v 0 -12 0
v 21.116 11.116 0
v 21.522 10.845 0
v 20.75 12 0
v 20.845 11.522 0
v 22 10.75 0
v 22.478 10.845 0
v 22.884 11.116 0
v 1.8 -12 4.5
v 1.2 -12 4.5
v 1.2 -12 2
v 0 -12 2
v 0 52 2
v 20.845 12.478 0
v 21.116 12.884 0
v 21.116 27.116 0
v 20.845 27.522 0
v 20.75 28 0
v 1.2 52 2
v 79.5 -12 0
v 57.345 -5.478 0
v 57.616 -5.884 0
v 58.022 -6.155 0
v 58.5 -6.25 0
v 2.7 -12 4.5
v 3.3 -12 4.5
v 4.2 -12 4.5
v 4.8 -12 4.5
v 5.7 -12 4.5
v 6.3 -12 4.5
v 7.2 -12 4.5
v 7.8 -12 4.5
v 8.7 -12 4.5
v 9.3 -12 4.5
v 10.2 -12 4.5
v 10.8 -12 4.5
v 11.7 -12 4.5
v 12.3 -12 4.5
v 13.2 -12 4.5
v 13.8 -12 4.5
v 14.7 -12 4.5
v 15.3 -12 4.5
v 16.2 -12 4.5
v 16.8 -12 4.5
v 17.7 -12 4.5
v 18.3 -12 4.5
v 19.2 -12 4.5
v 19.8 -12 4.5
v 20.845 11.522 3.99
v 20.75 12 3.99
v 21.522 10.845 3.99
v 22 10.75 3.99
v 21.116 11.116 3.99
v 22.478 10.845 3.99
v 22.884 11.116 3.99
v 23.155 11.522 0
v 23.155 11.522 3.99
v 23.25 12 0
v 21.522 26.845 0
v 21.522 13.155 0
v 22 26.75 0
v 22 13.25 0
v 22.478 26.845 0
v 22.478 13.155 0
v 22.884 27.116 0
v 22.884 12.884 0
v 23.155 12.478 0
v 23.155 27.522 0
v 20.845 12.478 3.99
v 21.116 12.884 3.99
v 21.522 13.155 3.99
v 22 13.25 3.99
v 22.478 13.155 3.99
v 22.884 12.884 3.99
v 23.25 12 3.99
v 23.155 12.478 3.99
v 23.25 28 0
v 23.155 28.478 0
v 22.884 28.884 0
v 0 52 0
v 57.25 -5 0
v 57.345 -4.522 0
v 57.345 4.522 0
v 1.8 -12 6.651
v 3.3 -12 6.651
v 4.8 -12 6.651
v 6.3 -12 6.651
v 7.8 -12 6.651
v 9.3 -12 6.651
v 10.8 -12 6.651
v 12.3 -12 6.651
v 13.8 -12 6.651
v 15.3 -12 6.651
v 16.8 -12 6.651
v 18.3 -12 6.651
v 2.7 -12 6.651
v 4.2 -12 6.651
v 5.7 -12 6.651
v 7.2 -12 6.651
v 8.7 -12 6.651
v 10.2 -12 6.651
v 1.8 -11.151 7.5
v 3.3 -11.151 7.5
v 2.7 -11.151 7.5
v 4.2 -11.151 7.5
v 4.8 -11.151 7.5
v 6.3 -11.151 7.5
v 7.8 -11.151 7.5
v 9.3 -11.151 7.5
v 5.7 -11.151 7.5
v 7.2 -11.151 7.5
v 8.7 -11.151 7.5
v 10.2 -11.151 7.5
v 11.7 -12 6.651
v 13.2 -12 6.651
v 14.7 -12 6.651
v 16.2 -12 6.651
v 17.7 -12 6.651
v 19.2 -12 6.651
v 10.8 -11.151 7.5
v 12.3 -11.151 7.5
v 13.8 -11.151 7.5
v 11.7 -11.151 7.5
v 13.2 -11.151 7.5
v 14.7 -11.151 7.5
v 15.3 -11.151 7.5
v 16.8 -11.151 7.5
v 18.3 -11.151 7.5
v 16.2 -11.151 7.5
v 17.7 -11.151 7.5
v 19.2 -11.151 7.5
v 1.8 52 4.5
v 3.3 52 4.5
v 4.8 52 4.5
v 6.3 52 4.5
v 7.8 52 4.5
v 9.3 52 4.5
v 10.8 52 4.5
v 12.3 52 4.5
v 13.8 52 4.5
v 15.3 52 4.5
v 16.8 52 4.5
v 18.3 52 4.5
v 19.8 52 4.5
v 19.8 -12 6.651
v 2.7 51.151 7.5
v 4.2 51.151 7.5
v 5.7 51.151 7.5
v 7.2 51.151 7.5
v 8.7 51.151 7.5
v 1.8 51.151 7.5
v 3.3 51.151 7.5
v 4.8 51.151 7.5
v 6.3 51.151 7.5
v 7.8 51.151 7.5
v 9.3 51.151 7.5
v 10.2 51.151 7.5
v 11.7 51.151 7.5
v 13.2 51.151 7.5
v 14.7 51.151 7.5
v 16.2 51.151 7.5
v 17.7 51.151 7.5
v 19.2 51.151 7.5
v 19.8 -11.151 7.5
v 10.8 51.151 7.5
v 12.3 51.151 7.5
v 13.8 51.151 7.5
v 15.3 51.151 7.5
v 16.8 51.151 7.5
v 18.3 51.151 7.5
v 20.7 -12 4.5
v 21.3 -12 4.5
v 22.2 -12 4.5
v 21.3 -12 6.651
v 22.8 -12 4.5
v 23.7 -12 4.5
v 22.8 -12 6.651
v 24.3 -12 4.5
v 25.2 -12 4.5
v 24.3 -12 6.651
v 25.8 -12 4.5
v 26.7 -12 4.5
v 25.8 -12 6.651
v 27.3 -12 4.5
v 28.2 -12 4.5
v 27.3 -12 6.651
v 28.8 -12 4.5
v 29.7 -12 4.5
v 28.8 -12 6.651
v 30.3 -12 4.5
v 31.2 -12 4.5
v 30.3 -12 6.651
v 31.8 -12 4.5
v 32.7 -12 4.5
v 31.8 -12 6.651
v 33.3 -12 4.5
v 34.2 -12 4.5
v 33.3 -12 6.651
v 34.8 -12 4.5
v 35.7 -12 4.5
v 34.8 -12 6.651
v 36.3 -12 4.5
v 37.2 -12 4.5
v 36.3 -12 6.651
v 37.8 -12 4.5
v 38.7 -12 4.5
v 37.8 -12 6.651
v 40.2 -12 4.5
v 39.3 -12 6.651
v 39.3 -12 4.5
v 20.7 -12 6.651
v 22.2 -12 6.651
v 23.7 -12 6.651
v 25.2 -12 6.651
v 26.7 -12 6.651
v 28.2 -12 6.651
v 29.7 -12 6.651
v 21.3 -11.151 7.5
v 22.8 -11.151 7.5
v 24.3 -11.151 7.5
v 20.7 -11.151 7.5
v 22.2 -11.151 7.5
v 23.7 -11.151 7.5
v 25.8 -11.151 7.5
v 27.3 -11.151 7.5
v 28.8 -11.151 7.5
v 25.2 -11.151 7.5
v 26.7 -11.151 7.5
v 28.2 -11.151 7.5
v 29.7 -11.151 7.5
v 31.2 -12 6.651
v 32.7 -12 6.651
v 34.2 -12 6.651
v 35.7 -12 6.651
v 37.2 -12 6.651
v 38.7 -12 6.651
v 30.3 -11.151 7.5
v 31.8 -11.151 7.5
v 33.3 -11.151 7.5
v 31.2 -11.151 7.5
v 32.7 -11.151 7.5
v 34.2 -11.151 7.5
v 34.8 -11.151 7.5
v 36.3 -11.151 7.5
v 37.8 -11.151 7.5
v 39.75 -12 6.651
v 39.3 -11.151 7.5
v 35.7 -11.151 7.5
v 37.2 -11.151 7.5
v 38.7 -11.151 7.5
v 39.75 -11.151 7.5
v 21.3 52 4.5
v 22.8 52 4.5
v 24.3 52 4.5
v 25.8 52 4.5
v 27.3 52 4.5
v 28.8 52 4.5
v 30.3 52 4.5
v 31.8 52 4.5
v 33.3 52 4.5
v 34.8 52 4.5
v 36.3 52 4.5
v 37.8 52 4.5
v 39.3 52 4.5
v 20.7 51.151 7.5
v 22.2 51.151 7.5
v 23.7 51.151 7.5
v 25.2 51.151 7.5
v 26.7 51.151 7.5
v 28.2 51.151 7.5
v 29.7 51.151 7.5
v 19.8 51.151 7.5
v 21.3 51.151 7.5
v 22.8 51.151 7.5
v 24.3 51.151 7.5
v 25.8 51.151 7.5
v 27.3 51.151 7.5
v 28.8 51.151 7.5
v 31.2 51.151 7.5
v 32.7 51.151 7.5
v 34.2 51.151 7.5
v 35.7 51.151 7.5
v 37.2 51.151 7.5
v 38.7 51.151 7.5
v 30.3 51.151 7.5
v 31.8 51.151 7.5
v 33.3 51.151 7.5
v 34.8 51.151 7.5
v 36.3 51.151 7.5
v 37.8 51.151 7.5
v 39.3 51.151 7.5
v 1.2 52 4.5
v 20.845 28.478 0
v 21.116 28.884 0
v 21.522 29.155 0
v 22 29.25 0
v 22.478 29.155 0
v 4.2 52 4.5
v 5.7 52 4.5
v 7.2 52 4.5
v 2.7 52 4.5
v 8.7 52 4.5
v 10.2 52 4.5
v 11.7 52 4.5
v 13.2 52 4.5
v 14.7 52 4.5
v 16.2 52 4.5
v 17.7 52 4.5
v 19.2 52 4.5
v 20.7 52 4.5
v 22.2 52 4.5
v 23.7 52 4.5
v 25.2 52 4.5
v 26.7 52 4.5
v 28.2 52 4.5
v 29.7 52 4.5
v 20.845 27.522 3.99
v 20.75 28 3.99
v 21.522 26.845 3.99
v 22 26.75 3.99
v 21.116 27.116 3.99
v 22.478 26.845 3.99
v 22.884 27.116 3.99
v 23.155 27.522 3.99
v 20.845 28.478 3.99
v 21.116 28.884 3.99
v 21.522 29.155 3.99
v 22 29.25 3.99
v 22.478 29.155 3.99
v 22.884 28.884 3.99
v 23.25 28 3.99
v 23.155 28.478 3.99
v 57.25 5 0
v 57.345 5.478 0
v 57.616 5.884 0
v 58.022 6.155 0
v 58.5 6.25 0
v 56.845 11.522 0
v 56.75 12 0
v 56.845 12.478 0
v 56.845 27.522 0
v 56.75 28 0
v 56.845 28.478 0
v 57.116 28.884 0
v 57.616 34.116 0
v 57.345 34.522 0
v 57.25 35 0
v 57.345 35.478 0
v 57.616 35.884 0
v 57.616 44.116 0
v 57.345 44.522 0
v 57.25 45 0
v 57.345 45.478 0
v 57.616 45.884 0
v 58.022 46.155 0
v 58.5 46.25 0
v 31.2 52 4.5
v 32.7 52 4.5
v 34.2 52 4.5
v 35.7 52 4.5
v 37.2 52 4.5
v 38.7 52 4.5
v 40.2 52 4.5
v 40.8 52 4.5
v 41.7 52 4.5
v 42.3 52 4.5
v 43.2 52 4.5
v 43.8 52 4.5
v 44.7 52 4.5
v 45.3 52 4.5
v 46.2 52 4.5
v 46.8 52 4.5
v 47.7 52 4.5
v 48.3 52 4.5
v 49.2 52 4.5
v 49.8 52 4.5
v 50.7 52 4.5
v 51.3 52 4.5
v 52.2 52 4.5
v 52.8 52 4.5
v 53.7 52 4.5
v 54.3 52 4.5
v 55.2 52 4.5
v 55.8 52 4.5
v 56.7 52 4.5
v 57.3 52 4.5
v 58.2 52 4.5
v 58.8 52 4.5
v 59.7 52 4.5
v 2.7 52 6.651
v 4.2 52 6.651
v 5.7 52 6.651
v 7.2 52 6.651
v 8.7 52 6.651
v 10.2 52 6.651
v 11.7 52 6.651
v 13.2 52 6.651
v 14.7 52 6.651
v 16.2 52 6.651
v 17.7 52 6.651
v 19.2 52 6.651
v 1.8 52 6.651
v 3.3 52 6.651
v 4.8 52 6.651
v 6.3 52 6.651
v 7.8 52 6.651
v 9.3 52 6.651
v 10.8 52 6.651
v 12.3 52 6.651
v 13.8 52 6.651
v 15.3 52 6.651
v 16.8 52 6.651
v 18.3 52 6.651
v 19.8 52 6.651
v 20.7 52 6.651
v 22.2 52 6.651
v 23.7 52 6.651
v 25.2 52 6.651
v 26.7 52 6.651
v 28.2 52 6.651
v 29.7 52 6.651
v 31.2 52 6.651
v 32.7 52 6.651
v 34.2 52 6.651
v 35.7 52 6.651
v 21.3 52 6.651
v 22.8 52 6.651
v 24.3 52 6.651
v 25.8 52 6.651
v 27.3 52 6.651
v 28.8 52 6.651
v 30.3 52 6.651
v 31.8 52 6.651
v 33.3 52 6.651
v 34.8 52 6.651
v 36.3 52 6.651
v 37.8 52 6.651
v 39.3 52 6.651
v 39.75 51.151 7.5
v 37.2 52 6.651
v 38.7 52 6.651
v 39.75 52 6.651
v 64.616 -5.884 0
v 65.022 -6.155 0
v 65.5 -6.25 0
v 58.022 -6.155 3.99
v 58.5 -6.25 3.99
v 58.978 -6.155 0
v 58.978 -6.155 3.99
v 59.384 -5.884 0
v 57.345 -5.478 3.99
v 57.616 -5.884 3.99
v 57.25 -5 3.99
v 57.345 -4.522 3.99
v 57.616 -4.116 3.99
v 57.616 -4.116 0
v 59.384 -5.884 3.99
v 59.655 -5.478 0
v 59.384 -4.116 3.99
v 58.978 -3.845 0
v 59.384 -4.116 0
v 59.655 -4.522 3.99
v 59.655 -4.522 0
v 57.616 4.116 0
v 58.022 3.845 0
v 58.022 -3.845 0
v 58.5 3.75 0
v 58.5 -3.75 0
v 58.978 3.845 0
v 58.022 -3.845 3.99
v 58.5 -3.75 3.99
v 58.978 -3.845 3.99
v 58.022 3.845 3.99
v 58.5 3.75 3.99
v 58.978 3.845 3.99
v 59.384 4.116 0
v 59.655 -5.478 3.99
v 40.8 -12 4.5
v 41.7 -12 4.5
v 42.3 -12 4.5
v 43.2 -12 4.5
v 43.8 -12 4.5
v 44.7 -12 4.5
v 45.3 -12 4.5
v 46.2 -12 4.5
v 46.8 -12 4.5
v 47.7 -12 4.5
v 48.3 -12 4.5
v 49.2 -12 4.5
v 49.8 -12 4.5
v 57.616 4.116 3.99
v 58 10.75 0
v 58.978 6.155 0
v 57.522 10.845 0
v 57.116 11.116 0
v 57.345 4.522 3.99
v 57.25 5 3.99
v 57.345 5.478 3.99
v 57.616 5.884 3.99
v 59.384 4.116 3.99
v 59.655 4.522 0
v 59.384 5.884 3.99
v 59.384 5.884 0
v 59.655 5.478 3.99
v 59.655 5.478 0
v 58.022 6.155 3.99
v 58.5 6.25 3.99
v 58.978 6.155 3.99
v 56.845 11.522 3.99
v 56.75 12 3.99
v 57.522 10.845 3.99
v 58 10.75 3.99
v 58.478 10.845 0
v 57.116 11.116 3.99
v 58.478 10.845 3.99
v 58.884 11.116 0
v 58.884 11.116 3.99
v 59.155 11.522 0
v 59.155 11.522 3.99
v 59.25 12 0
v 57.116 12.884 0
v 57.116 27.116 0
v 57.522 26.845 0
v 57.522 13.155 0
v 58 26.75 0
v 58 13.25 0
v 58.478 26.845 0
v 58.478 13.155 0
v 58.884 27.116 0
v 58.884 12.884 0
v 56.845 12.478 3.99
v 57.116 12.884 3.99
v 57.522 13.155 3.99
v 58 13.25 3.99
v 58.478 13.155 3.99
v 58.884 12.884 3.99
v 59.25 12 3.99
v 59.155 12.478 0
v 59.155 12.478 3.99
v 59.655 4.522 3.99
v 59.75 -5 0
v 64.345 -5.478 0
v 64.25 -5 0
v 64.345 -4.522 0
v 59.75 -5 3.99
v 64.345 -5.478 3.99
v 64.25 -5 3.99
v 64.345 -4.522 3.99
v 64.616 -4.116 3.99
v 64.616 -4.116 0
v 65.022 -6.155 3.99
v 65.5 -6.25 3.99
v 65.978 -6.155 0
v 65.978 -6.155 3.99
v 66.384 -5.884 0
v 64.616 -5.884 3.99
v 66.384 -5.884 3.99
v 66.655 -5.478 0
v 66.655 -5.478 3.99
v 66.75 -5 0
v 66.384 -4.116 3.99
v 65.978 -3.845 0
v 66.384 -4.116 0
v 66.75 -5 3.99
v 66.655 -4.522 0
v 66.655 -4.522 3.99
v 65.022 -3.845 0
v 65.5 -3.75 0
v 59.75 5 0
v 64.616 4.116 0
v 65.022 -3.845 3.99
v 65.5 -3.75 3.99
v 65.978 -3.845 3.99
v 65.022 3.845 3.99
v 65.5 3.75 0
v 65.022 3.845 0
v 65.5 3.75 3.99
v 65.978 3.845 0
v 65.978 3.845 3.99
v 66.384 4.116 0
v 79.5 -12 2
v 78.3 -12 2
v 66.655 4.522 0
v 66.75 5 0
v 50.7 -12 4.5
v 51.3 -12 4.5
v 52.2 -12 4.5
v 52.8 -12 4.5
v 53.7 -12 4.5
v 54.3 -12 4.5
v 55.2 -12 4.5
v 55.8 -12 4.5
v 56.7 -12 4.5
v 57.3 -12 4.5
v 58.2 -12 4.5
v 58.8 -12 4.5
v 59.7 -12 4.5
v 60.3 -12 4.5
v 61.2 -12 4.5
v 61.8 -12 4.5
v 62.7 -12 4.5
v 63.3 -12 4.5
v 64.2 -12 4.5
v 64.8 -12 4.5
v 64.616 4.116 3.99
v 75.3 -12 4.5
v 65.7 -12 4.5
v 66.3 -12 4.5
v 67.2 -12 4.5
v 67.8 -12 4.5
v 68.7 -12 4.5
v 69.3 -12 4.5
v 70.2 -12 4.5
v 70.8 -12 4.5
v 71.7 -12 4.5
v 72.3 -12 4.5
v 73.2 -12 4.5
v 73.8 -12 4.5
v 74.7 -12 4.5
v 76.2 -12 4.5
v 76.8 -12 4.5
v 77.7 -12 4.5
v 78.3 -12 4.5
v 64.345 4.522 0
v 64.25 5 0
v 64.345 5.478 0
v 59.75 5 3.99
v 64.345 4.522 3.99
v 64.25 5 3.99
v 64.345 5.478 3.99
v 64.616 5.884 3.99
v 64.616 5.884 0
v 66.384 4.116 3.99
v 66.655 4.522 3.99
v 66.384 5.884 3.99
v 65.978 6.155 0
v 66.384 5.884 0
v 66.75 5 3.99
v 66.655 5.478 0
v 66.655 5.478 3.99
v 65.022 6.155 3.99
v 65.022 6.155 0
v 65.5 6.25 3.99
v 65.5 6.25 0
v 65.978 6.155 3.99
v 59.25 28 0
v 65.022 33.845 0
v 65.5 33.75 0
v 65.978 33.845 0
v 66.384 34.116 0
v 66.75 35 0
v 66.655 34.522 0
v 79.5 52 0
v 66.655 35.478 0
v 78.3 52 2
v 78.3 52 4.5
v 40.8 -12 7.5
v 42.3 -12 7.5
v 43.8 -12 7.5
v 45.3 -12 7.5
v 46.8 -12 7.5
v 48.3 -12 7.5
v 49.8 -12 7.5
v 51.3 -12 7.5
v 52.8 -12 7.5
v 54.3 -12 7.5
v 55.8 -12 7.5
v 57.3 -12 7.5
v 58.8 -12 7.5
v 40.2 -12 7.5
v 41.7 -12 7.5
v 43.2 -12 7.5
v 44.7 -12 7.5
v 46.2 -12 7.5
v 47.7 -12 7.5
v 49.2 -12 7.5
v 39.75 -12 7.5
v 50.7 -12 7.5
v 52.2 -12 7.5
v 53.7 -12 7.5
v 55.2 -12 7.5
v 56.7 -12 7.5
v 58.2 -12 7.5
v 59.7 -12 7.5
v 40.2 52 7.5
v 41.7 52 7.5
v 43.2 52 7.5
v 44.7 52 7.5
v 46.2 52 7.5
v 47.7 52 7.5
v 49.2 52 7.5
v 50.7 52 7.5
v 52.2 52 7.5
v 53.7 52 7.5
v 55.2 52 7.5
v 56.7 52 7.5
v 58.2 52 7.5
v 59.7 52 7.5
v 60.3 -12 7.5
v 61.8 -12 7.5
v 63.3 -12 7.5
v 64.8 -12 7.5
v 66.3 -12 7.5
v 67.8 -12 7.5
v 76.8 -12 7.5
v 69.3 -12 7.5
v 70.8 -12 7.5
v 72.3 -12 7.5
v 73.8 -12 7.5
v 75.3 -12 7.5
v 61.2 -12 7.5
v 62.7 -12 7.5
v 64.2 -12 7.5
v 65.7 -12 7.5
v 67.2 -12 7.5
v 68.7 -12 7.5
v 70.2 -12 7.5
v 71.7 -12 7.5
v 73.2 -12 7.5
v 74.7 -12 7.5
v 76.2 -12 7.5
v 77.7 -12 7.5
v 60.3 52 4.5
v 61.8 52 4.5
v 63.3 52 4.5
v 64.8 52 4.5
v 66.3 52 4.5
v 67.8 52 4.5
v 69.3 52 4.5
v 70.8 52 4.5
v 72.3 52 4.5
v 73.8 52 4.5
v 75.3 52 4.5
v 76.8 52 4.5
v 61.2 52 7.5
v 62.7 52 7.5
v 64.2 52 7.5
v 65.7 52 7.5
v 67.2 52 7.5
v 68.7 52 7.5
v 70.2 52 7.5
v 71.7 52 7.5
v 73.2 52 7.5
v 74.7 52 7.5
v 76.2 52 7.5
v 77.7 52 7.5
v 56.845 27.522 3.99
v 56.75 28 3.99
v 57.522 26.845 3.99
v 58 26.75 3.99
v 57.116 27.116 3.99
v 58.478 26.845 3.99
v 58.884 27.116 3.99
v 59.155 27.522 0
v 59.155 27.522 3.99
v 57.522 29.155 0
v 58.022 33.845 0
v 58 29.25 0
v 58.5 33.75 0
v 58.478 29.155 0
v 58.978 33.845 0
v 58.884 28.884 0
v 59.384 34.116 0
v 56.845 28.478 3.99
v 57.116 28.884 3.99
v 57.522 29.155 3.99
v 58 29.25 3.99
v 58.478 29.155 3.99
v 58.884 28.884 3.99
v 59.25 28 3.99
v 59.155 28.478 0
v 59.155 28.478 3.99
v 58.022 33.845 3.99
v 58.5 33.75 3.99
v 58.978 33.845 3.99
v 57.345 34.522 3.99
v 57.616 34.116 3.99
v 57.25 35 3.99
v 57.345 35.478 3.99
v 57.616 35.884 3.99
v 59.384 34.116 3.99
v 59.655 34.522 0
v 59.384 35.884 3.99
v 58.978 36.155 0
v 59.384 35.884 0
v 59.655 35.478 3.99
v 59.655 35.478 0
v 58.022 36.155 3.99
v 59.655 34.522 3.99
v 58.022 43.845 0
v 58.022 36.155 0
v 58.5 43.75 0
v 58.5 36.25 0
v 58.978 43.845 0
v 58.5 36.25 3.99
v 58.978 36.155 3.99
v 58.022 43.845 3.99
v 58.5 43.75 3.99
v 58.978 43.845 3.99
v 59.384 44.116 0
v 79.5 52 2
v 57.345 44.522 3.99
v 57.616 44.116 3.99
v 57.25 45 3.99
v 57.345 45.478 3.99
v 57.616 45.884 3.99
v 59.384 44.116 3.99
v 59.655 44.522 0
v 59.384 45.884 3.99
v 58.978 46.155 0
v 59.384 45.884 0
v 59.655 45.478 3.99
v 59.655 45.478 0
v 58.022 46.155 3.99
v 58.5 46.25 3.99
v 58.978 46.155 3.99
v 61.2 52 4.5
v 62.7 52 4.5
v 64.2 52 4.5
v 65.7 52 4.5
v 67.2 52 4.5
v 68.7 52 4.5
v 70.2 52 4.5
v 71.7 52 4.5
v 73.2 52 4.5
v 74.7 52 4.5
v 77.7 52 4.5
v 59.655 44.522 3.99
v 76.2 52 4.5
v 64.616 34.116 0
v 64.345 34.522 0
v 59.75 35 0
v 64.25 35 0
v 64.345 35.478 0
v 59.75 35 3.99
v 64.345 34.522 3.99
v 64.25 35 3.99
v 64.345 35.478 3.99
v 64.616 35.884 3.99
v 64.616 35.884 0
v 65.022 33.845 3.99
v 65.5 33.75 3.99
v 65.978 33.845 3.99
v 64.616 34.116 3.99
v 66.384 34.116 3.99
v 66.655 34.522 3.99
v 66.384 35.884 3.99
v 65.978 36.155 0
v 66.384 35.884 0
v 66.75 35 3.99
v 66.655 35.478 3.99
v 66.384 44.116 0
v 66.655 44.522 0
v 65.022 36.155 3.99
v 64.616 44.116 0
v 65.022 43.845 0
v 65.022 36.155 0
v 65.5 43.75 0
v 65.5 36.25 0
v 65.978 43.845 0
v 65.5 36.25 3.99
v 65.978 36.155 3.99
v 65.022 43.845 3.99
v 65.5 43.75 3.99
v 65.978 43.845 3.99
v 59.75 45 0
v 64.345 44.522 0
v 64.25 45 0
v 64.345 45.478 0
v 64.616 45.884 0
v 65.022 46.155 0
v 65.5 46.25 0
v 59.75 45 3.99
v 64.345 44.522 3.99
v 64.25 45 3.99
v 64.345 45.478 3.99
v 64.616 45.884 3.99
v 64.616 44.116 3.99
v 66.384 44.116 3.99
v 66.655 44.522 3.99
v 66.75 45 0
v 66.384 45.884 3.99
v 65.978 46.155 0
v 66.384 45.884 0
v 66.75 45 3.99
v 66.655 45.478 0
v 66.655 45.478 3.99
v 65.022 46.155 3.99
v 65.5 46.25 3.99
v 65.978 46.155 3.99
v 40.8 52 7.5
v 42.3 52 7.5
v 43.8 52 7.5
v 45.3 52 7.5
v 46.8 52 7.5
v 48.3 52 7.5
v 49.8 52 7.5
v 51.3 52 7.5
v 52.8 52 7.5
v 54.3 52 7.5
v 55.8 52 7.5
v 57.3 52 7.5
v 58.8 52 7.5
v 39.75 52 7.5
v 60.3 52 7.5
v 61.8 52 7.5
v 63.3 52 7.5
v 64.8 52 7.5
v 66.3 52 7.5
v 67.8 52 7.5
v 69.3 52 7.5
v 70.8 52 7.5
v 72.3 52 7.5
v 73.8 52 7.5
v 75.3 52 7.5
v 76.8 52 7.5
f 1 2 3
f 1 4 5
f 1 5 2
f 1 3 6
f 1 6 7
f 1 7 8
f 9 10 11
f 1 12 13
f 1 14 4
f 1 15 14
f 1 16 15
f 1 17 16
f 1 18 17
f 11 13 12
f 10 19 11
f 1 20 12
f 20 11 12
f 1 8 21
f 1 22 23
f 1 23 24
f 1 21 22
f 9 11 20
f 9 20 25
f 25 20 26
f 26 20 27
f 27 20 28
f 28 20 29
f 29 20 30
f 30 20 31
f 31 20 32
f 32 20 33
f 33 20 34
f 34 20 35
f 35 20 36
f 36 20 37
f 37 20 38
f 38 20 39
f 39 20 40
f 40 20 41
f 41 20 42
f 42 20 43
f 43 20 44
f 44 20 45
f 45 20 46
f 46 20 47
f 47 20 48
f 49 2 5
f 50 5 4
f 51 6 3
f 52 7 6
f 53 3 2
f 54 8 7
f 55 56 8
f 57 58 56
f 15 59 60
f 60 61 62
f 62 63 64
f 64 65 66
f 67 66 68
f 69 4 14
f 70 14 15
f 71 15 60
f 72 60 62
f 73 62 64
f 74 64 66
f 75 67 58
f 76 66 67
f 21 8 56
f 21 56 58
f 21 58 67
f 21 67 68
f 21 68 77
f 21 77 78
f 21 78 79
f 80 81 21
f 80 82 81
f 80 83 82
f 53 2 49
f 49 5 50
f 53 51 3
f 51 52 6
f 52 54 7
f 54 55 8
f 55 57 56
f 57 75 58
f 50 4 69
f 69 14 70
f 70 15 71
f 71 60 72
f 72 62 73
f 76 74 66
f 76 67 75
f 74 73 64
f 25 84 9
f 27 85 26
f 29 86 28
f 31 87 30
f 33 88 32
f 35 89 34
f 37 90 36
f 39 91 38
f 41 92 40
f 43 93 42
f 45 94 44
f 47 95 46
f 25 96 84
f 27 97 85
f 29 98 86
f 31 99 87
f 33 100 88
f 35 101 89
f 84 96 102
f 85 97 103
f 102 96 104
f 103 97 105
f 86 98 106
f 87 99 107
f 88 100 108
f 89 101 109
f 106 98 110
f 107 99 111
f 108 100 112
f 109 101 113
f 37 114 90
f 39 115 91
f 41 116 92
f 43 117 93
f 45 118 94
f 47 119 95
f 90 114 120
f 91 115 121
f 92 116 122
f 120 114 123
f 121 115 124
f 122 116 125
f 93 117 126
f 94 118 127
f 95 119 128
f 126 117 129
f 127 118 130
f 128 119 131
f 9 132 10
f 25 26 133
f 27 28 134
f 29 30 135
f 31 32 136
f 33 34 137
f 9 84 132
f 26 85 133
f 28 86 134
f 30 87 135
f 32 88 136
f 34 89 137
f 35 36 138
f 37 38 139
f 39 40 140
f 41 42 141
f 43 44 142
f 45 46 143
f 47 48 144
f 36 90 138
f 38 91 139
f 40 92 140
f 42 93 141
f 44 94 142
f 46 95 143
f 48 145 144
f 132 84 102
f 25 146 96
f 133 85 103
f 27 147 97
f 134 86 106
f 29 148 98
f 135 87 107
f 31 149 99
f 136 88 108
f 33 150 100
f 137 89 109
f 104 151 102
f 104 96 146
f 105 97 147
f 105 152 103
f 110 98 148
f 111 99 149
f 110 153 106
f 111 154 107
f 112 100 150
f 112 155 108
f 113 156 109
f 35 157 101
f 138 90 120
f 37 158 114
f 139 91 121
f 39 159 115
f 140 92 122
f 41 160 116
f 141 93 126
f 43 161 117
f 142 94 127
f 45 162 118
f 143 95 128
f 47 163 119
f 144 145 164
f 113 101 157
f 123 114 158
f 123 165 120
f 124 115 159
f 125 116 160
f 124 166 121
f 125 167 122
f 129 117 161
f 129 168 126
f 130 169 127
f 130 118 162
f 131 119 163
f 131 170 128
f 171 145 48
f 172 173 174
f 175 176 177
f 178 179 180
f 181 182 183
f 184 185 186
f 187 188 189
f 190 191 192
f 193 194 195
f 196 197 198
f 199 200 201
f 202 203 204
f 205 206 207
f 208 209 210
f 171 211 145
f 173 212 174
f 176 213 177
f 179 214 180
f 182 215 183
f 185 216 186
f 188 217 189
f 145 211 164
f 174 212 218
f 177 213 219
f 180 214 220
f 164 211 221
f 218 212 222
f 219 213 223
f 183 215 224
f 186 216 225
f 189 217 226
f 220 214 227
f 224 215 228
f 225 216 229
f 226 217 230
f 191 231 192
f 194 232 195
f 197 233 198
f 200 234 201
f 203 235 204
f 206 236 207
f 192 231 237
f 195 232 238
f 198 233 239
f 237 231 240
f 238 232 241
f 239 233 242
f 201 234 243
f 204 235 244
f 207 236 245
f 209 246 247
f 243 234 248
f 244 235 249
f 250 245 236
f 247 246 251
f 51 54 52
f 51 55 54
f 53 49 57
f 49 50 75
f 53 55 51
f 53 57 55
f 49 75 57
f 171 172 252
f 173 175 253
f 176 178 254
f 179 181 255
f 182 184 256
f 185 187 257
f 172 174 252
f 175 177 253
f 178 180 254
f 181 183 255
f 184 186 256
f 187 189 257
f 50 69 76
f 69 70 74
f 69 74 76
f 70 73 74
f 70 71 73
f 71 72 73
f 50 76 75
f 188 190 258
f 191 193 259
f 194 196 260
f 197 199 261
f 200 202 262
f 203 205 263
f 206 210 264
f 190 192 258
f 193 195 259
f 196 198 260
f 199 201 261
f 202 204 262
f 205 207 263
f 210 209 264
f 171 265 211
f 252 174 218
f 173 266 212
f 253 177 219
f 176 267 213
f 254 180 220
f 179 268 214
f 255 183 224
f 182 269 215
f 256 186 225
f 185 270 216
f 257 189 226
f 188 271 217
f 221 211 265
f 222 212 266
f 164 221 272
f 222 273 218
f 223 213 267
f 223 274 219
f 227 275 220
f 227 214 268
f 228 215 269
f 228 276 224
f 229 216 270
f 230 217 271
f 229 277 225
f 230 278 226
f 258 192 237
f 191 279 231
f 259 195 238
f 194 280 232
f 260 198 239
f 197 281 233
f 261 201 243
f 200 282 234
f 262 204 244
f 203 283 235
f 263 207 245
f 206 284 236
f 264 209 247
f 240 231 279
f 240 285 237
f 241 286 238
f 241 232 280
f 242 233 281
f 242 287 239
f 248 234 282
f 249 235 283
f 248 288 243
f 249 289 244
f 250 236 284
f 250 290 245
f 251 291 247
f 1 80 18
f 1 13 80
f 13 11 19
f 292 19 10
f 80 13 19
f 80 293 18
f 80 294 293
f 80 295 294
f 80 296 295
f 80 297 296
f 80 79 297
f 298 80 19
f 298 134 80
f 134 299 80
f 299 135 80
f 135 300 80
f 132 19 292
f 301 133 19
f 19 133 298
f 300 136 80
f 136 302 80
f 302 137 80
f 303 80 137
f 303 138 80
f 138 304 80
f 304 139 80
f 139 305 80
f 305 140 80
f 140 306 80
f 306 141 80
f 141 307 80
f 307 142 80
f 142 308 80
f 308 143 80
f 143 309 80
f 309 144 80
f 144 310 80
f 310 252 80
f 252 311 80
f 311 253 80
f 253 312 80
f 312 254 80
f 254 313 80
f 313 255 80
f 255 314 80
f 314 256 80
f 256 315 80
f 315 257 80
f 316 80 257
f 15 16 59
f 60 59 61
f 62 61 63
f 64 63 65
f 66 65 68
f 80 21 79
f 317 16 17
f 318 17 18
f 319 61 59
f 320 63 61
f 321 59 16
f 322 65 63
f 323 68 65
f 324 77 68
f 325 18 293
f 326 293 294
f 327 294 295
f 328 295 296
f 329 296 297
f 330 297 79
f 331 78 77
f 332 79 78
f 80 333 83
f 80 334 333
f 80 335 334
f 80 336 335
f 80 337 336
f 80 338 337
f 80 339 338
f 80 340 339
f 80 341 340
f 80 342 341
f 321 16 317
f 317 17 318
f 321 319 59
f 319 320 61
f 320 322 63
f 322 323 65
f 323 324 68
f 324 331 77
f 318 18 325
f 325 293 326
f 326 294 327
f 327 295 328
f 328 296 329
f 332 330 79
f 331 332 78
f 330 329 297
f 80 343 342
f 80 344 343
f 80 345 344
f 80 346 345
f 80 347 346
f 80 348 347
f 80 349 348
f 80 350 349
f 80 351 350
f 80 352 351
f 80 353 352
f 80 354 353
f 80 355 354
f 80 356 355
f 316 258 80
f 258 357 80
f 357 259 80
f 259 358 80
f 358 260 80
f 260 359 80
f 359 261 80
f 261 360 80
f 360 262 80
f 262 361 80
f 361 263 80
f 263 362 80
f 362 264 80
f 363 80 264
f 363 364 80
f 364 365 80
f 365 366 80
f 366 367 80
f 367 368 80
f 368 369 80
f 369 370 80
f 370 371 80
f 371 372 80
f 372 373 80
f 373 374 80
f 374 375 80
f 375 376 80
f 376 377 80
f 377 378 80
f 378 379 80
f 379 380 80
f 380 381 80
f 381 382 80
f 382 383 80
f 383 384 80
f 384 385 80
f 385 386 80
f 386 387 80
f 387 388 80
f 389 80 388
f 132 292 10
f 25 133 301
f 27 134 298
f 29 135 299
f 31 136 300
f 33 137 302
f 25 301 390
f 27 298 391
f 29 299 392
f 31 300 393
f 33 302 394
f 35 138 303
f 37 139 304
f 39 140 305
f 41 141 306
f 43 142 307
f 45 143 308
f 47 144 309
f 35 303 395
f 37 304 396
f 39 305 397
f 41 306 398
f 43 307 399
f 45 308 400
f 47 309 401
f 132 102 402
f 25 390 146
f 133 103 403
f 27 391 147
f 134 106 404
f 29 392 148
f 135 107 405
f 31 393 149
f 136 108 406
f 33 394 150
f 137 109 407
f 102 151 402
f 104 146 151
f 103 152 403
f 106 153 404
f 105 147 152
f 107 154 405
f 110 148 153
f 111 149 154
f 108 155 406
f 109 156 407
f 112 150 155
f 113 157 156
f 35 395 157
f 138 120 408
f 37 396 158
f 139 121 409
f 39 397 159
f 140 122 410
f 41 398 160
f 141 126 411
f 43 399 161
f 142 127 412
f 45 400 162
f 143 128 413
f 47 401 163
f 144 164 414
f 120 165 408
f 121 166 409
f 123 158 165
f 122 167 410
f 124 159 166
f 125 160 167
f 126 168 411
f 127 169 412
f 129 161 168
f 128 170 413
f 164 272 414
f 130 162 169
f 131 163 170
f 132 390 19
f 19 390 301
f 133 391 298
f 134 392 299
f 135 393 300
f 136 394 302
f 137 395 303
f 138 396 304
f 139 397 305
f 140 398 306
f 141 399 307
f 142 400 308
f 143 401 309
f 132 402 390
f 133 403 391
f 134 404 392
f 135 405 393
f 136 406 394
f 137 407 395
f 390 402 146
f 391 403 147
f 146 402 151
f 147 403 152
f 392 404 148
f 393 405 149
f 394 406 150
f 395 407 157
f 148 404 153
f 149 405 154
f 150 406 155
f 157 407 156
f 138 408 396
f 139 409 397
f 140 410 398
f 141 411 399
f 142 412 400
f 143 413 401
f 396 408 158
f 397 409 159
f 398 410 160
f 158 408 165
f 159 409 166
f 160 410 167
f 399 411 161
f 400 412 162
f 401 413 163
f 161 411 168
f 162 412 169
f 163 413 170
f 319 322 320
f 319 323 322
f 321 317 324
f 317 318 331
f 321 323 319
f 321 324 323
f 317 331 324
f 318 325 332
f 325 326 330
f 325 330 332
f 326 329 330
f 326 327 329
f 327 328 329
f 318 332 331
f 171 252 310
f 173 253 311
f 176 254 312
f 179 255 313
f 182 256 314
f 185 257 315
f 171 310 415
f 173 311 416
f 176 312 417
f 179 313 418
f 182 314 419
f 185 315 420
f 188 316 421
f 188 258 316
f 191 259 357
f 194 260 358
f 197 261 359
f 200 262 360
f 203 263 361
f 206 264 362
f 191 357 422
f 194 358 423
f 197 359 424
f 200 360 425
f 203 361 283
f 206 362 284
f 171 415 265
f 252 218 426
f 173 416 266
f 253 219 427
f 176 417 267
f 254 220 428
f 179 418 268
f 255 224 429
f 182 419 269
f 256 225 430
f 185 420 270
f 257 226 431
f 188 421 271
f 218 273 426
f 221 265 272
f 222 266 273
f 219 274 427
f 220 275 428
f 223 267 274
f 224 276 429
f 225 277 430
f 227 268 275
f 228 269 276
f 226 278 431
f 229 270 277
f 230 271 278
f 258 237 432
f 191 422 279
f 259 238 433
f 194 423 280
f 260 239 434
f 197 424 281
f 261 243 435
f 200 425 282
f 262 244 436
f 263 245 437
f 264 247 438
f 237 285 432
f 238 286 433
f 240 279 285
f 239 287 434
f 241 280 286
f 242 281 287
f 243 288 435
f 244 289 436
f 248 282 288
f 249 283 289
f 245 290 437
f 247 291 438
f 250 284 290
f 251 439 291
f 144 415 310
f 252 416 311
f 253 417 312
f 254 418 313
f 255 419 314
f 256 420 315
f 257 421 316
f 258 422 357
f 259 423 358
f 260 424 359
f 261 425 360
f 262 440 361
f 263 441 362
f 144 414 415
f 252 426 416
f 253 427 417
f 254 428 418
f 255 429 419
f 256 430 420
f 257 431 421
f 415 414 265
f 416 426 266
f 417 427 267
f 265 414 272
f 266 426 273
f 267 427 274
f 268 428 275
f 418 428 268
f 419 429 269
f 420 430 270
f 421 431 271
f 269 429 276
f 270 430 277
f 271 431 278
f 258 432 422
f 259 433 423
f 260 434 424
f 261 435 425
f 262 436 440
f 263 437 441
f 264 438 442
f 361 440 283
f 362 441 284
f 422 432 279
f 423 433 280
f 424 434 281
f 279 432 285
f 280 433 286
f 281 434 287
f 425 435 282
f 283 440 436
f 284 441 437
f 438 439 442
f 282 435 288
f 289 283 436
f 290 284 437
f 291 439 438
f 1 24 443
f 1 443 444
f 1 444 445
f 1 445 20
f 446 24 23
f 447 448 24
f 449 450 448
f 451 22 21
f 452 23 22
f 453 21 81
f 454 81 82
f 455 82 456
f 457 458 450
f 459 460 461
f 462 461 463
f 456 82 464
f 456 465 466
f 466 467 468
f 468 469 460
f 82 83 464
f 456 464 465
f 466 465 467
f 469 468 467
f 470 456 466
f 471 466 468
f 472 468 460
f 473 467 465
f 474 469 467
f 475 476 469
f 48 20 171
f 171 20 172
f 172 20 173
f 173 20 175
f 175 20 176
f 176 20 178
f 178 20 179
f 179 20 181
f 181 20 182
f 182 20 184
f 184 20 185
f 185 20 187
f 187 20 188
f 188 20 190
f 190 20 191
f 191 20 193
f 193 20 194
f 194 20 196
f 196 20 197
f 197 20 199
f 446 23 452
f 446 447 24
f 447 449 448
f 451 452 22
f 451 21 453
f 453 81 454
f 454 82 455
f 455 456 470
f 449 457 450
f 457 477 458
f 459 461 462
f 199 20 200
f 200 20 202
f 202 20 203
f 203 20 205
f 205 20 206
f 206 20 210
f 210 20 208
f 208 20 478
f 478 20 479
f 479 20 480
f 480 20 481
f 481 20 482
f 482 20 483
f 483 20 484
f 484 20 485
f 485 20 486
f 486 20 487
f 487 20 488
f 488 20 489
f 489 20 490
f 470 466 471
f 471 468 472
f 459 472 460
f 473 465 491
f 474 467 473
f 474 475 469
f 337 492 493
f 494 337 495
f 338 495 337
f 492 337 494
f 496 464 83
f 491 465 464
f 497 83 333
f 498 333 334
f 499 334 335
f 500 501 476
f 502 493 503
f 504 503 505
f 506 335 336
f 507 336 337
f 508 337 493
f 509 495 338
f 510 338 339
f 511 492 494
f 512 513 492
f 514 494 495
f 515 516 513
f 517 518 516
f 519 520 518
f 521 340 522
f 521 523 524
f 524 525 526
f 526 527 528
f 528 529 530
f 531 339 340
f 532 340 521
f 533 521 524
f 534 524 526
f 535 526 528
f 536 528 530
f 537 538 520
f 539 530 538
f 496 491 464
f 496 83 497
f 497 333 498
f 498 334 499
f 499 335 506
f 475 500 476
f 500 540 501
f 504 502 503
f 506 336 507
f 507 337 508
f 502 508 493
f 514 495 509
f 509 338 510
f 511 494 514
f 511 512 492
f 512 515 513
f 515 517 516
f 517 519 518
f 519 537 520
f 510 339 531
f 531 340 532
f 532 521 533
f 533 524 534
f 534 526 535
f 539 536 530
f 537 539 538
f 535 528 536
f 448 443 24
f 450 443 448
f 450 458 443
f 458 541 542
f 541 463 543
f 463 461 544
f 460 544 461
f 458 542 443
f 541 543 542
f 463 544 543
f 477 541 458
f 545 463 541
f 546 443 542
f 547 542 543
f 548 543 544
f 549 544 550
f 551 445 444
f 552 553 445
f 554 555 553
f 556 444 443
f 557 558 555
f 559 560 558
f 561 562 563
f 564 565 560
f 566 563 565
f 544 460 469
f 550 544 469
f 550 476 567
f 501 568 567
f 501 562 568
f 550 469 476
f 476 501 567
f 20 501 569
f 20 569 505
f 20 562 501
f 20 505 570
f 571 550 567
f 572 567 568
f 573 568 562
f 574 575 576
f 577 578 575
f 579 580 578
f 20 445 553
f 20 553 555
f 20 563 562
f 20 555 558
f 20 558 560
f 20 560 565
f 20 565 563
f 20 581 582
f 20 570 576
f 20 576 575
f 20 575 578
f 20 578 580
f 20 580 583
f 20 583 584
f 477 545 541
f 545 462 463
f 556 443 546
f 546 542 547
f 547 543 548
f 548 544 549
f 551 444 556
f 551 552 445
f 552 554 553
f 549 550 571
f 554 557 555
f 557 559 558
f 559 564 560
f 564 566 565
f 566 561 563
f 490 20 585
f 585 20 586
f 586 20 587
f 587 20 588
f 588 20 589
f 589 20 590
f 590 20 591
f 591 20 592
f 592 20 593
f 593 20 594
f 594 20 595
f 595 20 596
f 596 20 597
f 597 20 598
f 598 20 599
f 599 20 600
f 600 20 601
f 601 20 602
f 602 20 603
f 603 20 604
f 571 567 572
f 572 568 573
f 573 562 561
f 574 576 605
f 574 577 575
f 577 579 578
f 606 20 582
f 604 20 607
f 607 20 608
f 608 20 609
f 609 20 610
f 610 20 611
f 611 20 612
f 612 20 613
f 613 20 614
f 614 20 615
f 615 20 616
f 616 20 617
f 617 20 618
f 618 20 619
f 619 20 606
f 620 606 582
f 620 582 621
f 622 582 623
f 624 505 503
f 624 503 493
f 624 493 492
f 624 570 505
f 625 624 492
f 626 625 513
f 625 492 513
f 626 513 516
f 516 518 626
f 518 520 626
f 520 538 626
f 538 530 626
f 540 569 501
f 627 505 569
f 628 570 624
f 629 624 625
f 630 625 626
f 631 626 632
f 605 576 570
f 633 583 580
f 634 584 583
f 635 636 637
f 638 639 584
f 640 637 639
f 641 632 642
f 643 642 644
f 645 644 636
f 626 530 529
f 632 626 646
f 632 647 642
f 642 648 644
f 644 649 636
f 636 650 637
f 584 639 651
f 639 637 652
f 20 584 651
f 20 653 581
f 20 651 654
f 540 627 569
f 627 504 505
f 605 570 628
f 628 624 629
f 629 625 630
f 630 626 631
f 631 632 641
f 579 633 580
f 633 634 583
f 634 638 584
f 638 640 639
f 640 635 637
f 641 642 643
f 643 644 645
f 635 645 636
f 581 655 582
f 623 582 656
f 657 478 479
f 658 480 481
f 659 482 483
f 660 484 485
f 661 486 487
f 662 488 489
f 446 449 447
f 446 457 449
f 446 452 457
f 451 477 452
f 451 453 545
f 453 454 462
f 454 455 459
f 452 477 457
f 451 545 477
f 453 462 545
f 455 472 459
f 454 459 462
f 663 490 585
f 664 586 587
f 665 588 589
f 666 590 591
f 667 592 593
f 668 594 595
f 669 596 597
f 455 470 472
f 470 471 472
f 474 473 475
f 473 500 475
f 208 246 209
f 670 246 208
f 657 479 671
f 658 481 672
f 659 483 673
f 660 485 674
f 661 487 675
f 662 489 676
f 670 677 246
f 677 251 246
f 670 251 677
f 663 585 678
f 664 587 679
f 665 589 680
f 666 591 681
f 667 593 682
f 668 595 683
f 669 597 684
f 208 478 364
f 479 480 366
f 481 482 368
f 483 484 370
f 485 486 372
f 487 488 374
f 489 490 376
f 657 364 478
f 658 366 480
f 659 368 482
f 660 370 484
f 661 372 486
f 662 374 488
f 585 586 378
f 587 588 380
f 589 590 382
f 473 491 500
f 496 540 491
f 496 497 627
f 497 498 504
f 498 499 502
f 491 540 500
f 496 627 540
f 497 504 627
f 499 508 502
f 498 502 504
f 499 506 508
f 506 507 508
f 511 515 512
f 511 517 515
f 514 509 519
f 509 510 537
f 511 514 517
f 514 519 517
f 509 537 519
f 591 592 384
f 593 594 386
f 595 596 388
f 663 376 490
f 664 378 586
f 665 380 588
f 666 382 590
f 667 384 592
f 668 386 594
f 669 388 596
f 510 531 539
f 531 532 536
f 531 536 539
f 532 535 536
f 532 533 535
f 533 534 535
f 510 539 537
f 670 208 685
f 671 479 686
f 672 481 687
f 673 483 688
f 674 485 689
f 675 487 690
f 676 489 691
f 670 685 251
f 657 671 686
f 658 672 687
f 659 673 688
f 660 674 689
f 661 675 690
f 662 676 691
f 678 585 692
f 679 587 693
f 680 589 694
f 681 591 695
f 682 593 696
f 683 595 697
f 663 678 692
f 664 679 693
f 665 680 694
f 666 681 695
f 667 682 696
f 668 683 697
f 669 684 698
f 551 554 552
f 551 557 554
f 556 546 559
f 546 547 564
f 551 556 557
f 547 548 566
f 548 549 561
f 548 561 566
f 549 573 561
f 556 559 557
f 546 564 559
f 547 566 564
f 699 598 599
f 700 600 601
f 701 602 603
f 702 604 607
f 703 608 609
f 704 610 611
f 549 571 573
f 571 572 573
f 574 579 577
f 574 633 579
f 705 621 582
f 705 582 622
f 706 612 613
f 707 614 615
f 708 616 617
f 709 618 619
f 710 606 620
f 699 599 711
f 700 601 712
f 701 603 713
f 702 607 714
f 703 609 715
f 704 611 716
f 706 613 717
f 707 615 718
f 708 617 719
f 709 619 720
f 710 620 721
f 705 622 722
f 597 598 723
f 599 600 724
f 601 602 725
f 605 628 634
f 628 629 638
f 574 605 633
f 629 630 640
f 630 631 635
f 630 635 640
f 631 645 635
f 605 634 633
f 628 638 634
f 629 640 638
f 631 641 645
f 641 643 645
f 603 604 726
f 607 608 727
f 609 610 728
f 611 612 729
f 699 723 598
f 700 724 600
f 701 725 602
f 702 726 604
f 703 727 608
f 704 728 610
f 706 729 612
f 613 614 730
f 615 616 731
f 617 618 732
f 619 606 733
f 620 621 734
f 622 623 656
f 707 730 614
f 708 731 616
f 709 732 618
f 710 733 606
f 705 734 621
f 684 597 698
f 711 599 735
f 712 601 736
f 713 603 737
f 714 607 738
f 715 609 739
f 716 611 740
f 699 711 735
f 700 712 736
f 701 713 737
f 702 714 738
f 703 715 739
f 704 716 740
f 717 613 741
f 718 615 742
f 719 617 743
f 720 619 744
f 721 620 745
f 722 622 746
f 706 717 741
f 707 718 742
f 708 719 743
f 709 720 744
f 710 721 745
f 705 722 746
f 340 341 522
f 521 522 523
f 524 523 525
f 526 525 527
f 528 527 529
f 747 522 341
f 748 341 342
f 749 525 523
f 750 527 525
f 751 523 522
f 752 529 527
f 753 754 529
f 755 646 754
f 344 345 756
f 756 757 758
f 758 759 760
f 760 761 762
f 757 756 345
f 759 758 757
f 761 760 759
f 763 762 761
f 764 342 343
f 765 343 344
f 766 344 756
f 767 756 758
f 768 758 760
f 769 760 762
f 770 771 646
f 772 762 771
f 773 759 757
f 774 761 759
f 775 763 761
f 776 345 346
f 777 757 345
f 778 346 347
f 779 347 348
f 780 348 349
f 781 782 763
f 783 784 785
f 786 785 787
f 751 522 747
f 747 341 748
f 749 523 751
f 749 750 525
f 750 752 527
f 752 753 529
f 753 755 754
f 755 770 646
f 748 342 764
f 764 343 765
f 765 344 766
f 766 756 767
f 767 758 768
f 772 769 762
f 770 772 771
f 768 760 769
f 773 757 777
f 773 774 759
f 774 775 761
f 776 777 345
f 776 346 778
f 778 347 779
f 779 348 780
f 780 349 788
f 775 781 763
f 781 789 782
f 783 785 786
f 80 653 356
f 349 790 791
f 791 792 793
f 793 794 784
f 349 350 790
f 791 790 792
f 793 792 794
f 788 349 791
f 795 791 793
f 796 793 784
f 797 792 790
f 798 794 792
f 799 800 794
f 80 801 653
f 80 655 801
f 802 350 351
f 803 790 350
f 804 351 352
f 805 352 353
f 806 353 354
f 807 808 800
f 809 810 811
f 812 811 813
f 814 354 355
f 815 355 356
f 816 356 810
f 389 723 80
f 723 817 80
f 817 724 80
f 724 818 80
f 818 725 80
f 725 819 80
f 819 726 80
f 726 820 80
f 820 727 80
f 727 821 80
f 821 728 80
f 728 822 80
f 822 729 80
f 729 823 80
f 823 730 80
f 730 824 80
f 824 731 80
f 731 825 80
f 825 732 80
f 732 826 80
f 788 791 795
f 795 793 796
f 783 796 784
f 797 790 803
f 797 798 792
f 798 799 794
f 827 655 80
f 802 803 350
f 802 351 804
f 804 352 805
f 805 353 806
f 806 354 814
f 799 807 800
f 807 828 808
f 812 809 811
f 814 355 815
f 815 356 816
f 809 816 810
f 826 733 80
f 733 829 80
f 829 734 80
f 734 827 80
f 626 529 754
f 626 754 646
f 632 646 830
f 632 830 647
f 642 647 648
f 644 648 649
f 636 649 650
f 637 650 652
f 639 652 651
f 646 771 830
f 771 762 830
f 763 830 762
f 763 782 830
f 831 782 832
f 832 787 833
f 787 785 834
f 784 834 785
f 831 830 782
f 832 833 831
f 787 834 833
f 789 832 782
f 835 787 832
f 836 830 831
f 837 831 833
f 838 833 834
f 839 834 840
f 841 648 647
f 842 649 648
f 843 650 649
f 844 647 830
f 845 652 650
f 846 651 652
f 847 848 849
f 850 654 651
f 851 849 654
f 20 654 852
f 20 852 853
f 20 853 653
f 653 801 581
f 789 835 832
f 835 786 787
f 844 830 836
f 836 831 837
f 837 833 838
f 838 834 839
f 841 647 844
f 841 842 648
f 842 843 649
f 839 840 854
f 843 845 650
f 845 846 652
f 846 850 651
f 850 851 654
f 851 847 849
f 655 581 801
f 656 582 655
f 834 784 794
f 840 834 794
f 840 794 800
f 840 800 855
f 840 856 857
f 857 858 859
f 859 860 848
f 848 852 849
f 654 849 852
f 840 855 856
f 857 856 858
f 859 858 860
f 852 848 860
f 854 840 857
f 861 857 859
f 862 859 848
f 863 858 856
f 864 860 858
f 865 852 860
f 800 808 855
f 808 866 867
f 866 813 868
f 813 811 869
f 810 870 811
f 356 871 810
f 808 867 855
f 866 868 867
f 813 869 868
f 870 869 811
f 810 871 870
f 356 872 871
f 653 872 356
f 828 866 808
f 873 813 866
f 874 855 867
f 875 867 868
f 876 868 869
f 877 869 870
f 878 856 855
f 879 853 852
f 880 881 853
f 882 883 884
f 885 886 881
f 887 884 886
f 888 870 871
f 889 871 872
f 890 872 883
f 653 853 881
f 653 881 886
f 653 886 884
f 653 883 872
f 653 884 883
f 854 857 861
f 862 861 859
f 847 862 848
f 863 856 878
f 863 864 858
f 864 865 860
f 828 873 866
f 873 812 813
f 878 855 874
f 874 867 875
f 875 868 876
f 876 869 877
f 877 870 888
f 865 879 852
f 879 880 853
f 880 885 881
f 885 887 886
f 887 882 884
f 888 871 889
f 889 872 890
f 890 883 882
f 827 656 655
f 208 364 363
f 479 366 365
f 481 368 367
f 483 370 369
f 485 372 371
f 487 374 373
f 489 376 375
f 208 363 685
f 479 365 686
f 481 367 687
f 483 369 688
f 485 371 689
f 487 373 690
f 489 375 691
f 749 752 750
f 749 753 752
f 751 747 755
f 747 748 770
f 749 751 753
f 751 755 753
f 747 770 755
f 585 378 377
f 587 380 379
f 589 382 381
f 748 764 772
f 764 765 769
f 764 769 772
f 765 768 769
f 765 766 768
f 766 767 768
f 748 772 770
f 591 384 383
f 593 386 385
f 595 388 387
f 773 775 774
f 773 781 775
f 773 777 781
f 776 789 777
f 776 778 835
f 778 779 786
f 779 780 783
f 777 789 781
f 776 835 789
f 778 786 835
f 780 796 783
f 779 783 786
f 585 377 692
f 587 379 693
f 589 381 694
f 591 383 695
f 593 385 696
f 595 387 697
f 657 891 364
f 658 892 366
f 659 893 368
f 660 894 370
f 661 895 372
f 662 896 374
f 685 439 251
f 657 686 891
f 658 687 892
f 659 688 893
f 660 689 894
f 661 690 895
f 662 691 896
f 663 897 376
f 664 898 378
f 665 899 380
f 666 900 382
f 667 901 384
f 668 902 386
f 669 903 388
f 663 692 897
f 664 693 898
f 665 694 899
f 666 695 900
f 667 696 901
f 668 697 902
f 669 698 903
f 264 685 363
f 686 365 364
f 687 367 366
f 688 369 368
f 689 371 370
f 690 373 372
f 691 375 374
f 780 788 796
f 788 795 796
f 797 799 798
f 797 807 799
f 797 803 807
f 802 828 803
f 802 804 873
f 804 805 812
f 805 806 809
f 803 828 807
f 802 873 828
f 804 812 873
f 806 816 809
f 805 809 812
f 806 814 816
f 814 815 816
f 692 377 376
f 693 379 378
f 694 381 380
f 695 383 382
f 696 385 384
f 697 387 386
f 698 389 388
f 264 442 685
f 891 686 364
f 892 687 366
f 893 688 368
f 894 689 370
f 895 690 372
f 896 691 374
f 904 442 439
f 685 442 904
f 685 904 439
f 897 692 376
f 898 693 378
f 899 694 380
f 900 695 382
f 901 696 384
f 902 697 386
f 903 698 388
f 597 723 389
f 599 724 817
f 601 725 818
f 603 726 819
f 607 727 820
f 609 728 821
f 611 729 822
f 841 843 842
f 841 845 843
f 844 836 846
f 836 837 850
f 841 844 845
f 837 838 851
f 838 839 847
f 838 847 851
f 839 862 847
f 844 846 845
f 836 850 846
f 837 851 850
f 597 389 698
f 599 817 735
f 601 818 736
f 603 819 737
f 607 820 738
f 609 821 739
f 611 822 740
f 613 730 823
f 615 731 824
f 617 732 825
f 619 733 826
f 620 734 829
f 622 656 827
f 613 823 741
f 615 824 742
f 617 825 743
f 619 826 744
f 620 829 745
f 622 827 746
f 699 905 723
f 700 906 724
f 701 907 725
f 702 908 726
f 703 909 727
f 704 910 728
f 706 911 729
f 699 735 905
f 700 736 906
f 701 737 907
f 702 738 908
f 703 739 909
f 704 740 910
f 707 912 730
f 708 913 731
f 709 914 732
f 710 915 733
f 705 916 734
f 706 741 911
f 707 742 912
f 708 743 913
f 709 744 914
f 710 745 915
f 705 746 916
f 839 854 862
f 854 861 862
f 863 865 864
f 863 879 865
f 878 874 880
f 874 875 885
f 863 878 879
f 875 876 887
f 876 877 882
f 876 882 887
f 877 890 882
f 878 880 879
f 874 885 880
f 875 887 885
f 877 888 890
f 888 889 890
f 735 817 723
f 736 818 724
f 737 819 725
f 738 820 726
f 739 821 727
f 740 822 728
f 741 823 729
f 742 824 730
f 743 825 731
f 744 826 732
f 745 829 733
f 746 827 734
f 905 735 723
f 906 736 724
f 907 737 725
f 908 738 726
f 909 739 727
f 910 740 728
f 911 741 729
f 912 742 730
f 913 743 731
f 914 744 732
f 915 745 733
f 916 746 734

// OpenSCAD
// file: lib/lib.scad
// Shared helpers. Include AFTER params.scad (needs TOL, M3_* etc.).
$fa = 4; $fs = 0.5;

module rrect(size, r) {            // 2D rounded rectangle, centred
    r2 = min(r, min(size[0], size[1]) / 2 - 0.001);
    offset(r = r2) square([size[0] - 2 * r2, size[1] - 2 * r2], center = true);
}
module rbox(size, r, center_xy = true) {   // box with rounded vertical edges
    translate(center_xy ? [0, 0, 0] : [size[0] / 2, size[1] / 2, 0])
        linear_extrude(size[2]) rrect([size[0], size[1]], r);
}
module rbox_at(x0, x1, y0, y1, z0, z1, r = 0.01) {
    translate([(x0 + x1) / 2, (y0 + y1) / 2, z0]) rbox([x1 - x0, y1 - y0, z1 - z0], r);
}
module box_at(x0, x1, y0, y1, z0, z1) { translate([x0, y0, z0]) cube([x1 - x0, y1 - y0, z1 - z0]); }

module ring(ro, ri, h) { difference() { cylinder(r = ro, h = h); translate([0, 0, -1]) cylinder(r = ri, h = h + 2); } }
module ring_sector(ro, ri, h, a0, a1) {
    intersection() {
        ring(ro, ri, h);
        linear_extrude(h) polygon(concat([[0, 0]], [for (a = [a0 : (a1 - a0) / 24 : a1]) 2 * ro * [cos(a), sin(a)]]));
    }
}
// teardrop hole along an axis lying horizontal (axis = Y after rotation), printable w/o support
module teardrop2d(d) { union() { circle(d = d); rotate(45) square(d / 2); } }
// vertical heat-set insert hole, opening at z=0 going +z (depth l)
module insert_hole(l = M3_INSERT_L) { translate([0, 0, -EPS]) cylinder(d = M3_INSERT_D, h = l + EPS); }
module m3_clear(l) { translate([0, 0, -EPS]) cylinder(d = M3_CLEAR, h = l + 2 * EPS); }
module m3_csk(l) {  // countersunk clearance from z=0 upward, head at z=0 side
    translate([0, 0, -EPS]) { cylinder(d = M3_CLEAR, h = l + 2 * EPS); cylinder(d1 = 6.4, d2 = M3_CLEAR, h = 1.7); }
}
module card2d() { rrect([CARD_L, CARD_W], CARD_R); }
module card_at(cy, z) { translate([0, cy, z]) linear_extrude(CARD_T) card2d(); }

// ---- gears ----
function _inv(a) = tan(a) - a * PI_ / 180;           // involute function, a in deg
function _invpt(rb, r, ang0, s) = let(al = acos(rb / r), th = ang0 - s * (_inv(al) * 180 / PI_)) [r * cos(th), r * sin(th)];
module involute_gear2d(m, z, pa = 20, clearance = 0.05) {
    rp = m * z / 2; rb = rp * cos(pa); ra = rp + m - clearance; rf = rp - 1.25 * m;
    half = 90 / z + _inv(pa) * 180 / PI_;            // tooth half-angle at base (deg)
    n = 8;
    rs = [for (i = [0 : n]) max(rb, rf) + (ra - max(rb, rf)) * i / n];
    union() {
        circle(r = rf, $fn = z * 4);
        for (k = [0 : z - 1]) rotate(k * 360 / z) polygon(concat(
            [[rf * cos(-half), rf * sin(-half)]],
            [for (r = rs) let(p = _invpt(rb, r, half, 1)) [p[0], -p[1]]],
            [for (i = [n : -1 : 0]) _invpt(rb, rs[i], half, 1)],
            [[rf * cos(half), rf * sin(half)]]));
    }
}
// straight gear rack (2D in XY: teeth along +x, pointing -y, pitch line at y=0)
module gear_rack2d(m, len, back = 3) {
    p = PI_ * m; ad = m; de = 1.25 * m; t = tan(20);
    n = ceil(len / p) + 1;
    intersection() {
        union() {
            translate([0, de]) square([len, back]);
            for (i = [0 : n]) translate([i * p - p / 4, 0]) polygon([
                [-(p / 4 + de * t), de + 0.01], [p / 4 + de * t + 0.01, de + 0.01],
                [p / 4 - ad * t, -ad], [-(p / 4 - ad * t), -ad] ]);
        }
        translate([0, -ad - 1]) square([len, ad + de + back + 2]);
    }
}
// GT2 belt-tooth profile ring (teeth outward), 2D
module gt2_ring2d(n, r_land, ri) {
    union() {
        difference() { circle(r = r_land + 0.01, $fn = n * 2); circle(r = ri, $fn = n * 2); }
        for (k = [0 : n - 1]) rotate(k * 360 / n)
            translate([r_land, 0]) hull() { translate([-0.2, 0]) square([0.2, 1.0], center = true); translate([0.25, 0]) circle(r = 0.5, $fn = 12); }
    }
}
// main file
// Rack side comb (qty 2, identical; the -X one is the same part turned 180 deg about Z).
// 51 fins 0.9 mm (noted exception to the 1.2 mm wall rule, D-01) on a 4.5 mm wall.
// Rebates top and bottom take the glued rack plates. Pilot holes for the carriage (+X)
// and nut arm (-X) patterns are both present (pattern is symmetric about the rack centre).
// Print: lying on its outer face, fins vertical, no supports.
include <params.scad>
include <lib/lib.scad>
// installed as the +X comb, rack at home (rack bottom at RACK_Z_MIN)
module rack_comb() {
    translate([0, 0, RACK_Z_MIN]) difference() {
        union() {
            box_at(COMB_IN, COMB_OUT, RACK_Y0, RACK_Y1, 0, RACK_H);
            for (i = [0 : SHELF_COUNT - 2]) box_at(FIN_IN, COMB_IN + EPS, RACK_Y0, RACK_Y1, shelf_z(i) + SHELF_GAP, shelf_z(i + 1));
        }
        box_at(COMB_IN - 1, COMB_IN + PLATE_REBATE, RACK_Y0 - 1, RACK_Y1 + 1, -1, RACK_CAP);
        box_at(COMB_IN - 1, COMB_IN + PLATE_REBATE, RACK_Y0 - 1, RACK_Y1 + 1, shelf_z(SHELF_COUNT - 1) + SHELF_GAP, RACK_H + 1);
        for (h = concat(CARR_HOLES, ARM_HOLES, [for (p = ARM_HOLES) [2 * RACK_YC - p[0], p[1]]]))
            translate([COMB_OUT + EPS, h[0], h[1]]) rotate([0, -90, 0]) cylinder(d = PILOT_D, h = PILOT_L);
        // lead-in chamfers on the fin tips at both open faces
        for (y = [RACK_Y0, RACK_Y1]) translate([FIN_IN, y, -1]) rotate(45) cube([1.2, 1.2, RACK_H + 2], center = true);
    }
}
module rack_comb_print() translate([0, 0, COMB_OUT]) rotate([0, 90, 0]) translate([0, 0, -RACK_Z_MIN]) rack_comb();
rack_comb_print();
